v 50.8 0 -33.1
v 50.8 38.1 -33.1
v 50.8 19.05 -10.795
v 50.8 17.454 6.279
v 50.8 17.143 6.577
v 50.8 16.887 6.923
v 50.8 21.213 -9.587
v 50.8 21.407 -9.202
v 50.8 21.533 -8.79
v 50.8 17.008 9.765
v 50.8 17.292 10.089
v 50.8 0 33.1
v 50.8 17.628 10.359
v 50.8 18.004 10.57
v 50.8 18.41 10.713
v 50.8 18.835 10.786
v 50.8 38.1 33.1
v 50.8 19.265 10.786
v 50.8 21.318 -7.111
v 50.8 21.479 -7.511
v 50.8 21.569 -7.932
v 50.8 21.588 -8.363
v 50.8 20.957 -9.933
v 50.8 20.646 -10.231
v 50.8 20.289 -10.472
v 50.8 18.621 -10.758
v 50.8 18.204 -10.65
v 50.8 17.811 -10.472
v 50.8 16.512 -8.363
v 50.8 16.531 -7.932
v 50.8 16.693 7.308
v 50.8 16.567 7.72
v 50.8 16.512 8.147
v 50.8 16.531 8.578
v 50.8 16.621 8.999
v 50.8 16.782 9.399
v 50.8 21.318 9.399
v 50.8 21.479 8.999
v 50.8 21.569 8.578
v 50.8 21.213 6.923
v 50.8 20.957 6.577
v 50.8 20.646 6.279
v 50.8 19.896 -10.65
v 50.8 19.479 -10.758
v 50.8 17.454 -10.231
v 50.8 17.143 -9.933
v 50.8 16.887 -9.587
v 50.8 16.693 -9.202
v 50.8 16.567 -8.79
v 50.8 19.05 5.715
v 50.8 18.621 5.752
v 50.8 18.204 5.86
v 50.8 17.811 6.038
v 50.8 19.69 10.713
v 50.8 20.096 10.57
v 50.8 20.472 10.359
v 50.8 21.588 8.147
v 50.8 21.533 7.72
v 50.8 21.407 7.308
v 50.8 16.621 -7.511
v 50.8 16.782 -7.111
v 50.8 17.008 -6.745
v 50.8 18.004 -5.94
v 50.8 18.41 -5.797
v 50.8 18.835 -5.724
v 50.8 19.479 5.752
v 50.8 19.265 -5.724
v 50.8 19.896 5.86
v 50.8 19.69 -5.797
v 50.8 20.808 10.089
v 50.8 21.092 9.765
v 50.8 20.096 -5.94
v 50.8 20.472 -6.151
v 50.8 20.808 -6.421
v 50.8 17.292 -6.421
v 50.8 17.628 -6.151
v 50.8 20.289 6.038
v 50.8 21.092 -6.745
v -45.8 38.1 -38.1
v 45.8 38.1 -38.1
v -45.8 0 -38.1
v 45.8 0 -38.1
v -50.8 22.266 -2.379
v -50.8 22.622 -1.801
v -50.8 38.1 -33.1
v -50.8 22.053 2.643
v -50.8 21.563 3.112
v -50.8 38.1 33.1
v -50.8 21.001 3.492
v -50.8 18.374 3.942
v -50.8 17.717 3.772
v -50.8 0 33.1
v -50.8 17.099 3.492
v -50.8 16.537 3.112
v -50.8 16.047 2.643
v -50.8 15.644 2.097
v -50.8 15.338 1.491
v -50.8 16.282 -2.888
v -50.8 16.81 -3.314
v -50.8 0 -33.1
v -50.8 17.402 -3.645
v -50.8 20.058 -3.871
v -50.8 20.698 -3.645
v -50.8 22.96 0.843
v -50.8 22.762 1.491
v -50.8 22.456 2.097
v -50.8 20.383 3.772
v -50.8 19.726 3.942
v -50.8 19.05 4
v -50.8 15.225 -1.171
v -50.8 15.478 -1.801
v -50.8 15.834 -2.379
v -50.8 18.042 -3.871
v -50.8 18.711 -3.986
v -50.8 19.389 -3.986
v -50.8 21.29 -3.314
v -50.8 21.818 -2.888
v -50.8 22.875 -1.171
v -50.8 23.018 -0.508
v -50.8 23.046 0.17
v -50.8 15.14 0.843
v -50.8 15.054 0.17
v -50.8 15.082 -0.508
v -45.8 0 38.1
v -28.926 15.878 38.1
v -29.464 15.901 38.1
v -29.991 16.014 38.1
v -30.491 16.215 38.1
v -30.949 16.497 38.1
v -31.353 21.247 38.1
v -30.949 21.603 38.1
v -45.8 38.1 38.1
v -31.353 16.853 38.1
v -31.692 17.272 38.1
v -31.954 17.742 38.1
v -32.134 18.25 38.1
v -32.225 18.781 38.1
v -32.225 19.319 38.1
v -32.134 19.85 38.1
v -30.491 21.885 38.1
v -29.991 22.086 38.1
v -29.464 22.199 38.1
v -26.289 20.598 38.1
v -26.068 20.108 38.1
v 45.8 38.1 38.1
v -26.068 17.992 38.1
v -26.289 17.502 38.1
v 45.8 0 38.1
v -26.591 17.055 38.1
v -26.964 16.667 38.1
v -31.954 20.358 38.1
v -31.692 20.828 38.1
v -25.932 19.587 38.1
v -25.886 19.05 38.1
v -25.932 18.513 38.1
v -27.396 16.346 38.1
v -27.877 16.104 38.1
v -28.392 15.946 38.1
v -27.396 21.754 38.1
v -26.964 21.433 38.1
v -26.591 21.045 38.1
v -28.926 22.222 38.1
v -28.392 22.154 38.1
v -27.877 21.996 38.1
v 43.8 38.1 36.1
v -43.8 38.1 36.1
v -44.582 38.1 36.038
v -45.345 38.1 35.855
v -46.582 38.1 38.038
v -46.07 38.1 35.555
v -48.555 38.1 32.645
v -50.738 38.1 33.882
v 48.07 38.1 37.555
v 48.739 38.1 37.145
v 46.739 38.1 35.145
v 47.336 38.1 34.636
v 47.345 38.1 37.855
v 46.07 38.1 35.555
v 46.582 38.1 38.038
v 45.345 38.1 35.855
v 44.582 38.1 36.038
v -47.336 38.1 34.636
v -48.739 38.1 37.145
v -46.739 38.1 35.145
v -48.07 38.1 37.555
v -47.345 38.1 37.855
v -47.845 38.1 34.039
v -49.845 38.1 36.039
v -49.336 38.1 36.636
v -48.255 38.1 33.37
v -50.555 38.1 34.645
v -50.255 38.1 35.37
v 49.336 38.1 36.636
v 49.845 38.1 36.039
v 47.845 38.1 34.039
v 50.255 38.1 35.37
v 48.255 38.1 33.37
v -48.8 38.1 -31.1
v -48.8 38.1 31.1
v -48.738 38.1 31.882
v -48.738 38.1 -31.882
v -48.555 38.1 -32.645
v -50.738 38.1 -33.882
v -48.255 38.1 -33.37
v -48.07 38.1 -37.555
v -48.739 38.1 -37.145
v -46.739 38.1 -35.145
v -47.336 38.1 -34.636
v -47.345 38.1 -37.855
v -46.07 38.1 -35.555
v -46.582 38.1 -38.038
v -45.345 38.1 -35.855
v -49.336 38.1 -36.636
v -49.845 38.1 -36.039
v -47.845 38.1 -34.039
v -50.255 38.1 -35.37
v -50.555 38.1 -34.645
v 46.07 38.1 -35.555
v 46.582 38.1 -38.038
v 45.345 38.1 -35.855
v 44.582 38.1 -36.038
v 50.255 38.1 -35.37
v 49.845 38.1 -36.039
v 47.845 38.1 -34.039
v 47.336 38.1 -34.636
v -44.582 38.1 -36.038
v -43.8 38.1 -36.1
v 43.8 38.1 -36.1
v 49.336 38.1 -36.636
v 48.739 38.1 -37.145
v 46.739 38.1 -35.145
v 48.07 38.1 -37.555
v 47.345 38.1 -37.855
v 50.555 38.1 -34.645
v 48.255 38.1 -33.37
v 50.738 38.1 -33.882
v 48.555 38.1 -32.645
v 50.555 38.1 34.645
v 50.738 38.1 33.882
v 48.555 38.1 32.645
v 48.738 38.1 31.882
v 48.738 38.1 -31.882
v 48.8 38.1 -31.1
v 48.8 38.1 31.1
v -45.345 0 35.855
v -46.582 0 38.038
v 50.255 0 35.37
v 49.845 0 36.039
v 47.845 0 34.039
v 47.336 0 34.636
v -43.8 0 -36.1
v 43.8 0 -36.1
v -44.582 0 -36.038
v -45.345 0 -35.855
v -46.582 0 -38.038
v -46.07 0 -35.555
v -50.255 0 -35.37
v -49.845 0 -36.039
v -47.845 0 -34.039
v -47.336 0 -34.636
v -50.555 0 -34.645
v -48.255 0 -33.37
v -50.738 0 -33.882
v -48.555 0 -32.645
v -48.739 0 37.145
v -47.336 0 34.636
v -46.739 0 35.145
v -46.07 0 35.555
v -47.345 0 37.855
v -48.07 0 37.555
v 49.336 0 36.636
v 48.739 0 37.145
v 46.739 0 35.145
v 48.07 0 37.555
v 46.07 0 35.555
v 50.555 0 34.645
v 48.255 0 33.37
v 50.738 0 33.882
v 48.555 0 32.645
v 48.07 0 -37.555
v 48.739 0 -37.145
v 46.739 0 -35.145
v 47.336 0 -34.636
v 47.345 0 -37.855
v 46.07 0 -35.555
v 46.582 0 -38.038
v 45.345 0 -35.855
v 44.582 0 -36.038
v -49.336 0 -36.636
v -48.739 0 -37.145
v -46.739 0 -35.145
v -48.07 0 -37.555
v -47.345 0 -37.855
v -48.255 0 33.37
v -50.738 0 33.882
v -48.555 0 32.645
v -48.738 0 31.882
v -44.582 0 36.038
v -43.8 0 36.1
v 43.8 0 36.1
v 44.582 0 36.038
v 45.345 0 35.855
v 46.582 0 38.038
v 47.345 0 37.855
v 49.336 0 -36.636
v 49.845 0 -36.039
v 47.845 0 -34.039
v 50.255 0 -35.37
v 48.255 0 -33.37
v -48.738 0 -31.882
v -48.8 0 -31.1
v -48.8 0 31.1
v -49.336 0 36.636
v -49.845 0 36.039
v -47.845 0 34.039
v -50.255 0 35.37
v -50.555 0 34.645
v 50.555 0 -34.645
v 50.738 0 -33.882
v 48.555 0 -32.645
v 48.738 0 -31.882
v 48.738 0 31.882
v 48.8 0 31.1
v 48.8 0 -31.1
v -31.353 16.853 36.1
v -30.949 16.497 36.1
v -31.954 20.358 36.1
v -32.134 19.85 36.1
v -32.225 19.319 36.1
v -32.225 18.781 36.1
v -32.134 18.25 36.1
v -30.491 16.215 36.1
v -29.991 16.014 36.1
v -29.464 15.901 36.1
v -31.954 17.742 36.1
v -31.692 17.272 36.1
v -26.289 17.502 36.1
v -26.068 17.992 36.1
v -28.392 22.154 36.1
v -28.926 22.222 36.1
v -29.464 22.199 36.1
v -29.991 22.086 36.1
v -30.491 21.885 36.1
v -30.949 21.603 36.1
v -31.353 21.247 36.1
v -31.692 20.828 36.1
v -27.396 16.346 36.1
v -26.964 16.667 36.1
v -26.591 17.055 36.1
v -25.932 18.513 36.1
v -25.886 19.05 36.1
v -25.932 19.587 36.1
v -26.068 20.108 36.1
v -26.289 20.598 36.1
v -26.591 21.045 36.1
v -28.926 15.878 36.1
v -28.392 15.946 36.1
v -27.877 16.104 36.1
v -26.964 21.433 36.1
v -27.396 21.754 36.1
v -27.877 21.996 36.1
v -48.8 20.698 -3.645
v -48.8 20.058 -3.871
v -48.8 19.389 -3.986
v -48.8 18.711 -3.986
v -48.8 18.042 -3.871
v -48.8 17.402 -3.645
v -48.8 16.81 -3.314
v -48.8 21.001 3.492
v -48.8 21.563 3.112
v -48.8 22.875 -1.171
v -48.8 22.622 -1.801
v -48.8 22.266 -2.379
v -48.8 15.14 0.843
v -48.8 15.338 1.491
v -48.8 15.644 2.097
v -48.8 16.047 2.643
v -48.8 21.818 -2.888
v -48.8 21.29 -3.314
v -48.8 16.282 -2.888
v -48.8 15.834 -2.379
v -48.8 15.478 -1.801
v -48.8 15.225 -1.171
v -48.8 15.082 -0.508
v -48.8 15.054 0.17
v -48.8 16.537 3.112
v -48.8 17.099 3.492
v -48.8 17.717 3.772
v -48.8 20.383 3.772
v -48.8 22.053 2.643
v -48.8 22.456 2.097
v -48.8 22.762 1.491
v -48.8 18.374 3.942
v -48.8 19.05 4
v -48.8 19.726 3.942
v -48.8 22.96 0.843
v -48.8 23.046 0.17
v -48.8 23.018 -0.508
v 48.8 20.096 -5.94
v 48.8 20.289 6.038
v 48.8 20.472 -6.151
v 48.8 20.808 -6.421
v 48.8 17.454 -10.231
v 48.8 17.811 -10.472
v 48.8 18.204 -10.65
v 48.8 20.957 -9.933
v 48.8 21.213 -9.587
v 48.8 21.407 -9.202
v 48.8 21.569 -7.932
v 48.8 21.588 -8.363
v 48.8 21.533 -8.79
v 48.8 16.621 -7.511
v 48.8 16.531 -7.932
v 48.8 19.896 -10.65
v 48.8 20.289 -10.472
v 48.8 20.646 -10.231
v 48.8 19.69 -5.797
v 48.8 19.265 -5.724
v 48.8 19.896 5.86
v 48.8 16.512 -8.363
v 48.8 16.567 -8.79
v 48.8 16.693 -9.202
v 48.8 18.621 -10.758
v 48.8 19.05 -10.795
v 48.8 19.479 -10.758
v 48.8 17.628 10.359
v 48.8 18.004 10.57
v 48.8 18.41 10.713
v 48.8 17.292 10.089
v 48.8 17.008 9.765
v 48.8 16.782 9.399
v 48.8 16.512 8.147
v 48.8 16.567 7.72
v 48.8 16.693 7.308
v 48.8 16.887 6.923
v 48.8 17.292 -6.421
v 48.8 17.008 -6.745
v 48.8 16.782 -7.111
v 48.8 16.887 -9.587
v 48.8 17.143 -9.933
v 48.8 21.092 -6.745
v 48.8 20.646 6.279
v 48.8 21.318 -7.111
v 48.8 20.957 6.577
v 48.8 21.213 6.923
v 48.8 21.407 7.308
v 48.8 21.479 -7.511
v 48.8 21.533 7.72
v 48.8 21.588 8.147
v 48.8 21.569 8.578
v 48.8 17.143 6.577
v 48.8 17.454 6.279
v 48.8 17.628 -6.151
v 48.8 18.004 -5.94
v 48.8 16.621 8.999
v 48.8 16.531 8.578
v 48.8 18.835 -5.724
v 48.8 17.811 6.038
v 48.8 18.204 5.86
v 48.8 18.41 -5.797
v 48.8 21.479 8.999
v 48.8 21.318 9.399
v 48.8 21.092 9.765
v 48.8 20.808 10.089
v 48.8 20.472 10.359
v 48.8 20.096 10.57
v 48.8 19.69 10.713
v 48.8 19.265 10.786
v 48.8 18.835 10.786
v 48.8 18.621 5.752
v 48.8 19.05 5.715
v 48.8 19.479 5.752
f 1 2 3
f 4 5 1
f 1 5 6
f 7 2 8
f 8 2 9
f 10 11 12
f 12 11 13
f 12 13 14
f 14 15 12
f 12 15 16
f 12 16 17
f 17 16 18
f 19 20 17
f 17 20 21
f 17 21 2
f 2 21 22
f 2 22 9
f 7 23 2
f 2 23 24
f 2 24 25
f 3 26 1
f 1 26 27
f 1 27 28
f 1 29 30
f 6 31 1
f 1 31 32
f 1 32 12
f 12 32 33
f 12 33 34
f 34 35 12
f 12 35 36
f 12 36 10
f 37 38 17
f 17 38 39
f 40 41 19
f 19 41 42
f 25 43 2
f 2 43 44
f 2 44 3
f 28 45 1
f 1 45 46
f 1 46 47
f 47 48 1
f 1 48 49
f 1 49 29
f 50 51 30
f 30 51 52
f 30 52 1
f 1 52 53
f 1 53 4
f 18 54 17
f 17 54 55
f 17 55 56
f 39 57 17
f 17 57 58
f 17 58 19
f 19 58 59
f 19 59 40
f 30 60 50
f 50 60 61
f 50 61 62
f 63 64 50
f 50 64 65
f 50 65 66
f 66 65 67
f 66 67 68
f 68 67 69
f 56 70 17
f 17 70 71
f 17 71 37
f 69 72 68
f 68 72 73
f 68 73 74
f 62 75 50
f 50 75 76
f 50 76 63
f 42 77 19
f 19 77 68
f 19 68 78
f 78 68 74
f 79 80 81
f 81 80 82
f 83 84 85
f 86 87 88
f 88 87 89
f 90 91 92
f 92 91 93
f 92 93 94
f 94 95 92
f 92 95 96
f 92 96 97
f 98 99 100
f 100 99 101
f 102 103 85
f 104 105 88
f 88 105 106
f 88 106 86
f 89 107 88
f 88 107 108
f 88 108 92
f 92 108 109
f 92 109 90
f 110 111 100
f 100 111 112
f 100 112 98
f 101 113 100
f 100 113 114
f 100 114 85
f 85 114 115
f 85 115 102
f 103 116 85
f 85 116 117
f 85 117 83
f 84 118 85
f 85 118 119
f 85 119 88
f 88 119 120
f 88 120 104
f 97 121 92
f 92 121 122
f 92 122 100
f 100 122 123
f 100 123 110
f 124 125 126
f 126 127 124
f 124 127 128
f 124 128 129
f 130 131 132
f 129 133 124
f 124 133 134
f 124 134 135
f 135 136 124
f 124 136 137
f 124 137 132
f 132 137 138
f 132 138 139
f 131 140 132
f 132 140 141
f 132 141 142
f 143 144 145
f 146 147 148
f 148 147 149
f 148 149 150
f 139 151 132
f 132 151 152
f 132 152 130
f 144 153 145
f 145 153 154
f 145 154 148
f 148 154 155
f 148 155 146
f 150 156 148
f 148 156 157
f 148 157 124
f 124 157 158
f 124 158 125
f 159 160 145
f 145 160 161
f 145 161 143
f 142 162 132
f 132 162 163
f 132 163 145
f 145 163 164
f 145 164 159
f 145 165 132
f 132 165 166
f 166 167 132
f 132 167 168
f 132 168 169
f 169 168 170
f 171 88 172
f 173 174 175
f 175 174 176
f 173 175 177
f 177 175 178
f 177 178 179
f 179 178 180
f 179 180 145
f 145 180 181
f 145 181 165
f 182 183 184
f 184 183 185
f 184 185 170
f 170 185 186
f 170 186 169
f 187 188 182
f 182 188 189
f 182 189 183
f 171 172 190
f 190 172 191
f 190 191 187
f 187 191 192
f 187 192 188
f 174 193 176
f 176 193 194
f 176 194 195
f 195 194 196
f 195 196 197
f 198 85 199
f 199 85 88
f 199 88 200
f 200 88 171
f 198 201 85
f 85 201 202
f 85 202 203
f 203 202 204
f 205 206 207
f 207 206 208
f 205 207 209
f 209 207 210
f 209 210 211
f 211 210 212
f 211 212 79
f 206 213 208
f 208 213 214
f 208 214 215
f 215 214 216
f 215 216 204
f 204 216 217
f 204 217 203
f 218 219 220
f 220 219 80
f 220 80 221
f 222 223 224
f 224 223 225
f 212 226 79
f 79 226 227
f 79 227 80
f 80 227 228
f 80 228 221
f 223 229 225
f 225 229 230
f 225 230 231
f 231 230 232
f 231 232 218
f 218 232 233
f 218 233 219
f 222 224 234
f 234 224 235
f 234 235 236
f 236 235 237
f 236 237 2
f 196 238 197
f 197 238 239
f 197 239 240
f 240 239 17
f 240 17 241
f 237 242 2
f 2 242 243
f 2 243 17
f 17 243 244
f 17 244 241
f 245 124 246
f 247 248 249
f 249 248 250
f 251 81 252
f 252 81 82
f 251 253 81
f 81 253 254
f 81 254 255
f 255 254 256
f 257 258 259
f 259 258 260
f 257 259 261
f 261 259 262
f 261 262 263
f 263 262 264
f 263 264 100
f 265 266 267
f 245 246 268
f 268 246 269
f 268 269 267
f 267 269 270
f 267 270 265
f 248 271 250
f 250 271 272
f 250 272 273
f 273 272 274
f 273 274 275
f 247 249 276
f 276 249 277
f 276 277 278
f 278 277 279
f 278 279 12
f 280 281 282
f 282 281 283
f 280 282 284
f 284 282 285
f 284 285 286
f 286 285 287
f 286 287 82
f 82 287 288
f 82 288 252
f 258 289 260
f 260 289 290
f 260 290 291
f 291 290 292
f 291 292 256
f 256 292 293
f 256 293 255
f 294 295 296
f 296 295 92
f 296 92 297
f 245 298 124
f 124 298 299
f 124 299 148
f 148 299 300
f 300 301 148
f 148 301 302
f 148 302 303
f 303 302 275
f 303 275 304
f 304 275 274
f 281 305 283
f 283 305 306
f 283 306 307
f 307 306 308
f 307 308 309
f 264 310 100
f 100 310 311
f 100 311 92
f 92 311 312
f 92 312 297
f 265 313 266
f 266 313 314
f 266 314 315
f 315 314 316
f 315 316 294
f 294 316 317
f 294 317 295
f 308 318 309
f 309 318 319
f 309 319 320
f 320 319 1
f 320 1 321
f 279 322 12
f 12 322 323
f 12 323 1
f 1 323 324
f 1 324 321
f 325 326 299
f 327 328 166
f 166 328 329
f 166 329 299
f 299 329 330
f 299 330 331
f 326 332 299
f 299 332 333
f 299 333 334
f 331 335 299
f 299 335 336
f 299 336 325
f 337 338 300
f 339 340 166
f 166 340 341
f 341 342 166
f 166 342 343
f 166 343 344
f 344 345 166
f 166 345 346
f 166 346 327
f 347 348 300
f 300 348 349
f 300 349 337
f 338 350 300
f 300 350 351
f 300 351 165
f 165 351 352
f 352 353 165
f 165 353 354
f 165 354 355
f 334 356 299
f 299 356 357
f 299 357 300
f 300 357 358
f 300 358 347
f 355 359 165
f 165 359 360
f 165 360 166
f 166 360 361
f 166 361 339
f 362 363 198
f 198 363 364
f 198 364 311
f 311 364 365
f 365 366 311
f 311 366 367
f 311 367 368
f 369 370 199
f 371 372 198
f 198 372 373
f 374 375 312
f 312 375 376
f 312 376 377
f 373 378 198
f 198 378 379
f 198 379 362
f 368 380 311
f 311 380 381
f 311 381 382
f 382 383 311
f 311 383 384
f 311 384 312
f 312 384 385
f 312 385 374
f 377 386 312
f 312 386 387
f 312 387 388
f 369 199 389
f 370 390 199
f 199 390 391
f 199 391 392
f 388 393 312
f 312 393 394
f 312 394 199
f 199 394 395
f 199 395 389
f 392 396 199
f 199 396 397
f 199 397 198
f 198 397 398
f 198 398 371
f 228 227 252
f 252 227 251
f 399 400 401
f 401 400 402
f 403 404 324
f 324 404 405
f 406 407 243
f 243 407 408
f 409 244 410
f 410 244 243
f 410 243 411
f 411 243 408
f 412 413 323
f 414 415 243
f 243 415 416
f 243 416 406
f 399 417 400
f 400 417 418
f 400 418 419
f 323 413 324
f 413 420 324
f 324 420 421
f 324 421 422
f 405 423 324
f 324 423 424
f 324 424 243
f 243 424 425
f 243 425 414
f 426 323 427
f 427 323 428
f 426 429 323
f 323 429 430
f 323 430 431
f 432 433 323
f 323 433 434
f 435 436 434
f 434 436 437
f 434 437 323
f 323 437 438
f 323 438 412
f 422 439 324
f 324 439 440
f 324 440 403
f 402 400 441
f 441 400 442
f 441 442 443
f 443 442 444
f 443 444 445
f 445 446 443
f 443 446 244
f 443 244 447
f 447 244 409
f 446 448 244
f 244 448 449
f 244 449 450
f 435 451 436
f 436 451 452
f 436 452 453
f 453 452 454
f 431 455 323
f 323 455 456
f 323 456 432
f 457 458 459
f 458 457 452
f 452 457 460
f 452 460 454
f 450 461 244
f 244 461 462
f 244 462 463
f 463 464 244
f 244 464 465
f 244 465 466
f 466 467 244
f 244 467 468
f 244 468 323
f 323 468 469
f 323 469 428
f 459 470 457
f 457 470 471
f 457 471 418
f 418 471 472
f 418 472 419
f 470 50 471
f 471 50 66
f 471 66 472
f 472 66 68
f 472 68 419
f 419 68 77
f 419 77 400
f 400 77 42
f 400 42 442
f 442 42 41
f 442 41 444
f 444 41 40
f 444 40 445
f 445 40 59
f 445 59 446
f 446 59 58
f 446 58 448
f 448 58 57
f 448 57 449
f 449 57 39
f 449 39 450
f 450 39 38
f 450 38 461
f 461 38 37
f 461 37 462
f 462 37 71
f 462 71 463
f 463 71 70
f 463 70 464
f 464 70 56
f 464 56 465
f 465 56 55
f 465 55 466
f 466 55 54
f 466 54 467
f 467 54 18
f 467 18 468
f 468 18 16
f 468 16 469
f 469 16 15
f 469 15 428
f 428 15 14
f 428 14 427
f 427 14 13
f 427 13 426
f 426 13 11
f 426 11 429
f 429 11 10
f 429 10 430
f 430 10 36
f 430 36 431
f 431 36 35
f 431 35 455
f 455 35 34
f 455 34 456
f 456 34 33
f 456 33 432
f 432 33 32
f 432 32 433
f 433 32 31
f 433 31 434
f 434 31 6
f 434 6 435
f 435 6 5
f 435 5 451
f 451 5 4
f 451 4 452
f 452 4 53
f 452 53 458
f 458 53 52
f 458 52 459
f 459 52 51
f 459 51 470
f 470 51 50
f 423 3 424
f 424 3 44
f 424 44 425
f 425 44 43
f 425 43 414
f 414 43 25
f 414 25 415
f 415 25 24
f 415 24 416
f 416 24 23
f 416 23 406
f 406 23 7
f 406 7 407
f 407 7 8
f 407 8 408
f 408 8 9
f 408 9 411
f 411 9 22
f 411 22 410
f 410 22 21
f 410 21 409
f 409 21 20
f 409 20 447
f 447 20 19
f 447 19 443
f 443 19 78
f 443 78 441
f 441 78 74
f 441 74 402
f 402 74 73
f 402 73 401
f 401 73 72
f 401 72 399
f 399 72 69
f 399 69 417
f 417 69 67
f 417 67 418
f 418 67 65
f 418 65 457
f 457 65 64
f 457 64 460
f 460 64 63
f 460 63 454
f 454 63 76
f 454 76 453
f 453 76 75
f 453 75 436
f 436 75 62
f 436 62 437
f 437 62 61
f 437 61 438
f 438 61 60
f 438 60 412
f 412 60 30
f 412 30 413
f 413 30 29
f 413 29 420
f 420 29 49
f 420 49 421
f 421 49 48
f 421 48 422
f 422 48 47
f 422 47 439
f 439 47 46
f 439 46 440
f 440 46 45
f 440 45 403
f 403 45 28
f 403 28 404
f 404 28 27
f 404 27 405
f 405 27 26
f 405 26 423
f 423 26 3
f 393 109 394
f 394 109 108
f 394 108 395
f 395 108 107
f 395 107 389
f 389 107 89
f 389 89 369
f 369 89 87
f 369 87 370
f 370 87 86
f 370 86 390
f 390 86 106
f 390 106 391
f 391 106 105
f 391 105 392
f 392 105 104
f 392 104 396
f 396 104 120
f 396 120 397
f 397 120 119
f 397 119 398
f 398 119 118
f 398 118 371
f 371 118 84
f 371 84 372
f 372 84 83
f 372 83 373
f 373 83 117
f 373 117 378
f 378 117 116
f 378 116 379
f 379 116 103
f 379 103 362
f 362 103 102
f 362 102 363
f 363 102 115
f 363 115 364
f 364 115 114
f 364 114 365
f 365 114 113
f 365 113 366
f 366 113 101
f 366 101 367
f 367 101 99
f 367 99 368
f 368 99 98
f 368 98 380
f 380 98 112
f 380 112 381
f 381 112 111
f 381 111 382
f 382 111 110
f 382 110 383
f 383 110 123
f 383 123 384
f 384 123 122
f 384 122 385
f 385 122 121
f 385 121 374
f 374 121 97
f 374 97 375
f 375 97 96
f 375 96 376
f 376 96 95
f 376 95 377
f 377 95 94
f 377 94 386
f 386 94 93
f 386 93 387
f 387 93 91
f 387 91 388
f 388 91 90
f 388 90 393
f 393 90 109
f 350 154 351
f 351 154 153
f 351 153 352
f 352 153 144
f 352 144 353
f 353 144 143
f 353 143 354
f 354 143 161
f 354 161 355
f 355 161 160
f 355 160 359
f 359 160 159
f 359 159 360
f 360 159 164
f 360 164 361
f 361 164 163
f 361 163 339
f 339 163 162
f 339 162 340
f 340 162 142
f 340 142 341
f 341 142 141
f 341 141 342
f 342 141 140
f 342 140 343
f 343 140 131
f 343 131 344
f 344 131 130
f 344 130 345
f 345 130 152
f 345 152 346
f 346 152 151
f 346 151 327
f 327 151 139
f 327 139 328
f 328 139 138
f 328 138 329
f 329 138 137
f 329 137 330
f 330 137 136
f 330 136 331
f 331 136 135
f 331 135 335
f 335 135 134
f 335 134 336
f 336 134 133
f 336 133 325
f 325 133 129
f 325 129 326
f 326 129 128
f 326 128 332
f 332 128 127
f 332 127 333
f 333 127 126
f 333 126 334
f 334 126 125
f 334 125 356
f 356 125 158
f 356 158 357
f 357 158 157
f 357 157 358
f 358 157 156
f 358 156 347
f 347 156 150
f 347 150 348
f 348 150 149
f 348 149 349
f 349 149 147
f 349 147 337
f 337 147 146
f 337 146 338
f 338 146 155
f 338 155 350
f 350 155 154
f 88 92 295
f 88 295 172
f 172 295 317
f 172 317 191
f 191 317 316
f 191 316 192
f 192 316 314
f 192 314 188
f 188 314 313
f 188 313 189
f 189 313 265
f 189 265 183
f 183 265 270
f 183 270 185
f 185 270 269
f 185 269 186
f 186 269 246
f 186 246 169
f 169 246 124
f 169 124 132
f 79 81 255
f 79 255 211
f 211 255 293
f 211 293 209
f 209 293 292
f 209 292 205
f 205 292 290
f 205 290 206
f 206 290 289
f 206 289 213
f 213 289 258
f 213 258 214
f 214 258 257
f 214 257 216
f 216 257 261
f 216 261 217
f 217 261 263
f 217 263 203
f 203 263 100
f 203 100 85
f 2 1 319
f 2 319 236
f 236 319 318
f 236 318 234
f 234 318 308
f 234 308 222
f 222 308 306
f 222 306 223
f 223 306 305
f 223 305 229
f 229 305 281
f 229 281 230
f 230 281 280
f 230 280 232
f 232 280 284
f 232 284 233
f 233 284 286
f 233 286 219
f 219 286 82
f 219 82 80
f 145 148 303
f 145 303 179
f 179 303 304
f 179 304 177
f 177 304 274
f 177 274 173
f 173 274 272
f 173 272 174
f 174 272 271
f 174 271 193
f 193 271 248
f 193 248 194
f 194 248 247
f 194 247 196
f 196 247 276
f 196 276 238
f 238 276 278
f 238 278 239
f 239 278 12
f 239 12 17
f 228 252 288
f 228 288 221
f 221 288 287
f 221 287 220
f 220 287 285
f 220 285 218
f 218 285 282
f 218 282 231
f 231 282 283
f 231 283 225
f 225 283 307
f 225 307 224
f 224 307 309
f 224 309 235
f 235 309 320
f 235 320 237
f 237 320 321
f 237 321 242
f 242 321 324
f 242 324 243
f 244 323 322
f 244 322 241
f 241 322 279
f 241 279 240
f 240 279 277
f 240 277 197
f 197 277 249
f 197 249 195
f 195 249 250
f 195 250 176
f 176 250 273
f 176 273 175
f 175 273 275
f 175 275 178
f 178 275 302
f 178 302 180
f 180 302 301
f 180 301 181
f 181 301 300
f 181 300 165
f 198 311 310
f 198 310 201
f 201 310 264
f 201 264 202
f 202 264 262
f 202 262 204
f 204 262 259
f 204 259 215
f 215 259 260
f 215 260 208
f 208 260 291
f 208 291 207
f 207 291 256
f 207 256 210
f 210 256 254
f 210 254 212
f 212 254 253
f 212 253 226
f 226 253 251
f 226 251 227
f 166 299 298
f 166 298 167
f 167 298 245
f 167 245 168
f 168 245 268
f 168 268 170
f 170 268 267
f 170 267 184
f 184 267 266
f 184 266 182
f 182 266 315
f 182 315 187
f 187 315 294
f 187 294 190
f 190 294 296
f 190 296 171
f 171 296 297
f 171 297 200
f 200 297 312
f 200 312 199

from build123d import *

# Parameters (mm, degrees)
SKETCH1_W           = 101.6
SKETCH1_H           = 76.2
BOSS_EXTRUDE1_DEPTH = 38.1
SKETCH3_W           = 97.6
SKETCH3_H           = 72.2
CUT_EXTRUDE1_DEPTH  = 75.053089065
SKETCH7_R           = 2.54
CUT_EXTRUDE2_DEPTH  = 2
SKETCH9_R           = 4
CUT_EXTRUDE3_DEPTH  = 2
SKETCH11_R          = 3.175
CUT_EXTRUDE4_DEPTH  = 2
FILLET1_R           = 5
FILLET2_R           = 5


with BuildPart() as part:
    # Sketch1 → Boss-Extrude1 (new body)
    with BuildSketch(Plane(origin=(0, 0, 0), x_dir=(1, 0, 0), z_dir=(0, 1, 0))):
        Rectangle(SKETCH1_W, SKETCH1_H)
    extrude(amount=BOSS_EXTRUDE1_DEPTH)

    # Sketch3 → Cut-Extrude1 (cut, through all)
    with BuildSketch(Plane(origin=(0, 38.1, 0), x_dir=(1, 0, 0), z_dir=(0, 1, 0))):
        Rectangle(SKETCH3_W, SKETCH3_H)
    extrude(amount=-CUT_EXTRUDE1_DEPTH, mode=Mode.SUBTRACT)

    # Sketch7 → Cut-Extrude2 (cut)
    with BuildSketch(Plane(origin=(50.8, 0, 0), x_dir=(0, 0, -1), z_dir=(1, 0, 0))):
        with Locations((-8.255, 19.05)):
            Circle(SKETCH7_R)
        with Locations((8.255, 19.05)):
            Circle(SKETCH7_R)
    extrude(amount=-CUT_EXTRUDE2_DEPTH, mode=Mode.SUBTRACT)

    # Sketch9 → Cut-Extrude3 (cut)
    with BuildSketch(Plane.ZY.offset(50.8)):
        with Locations((0, 19.05)):
            Circle(SKETCH9_R)
    extrude(amount=-CUT_EXTRUDE3_DEPTH, mode=Mode.SUBTRACT)

    # Sketch11 → Cut-Extrude4 (cut)
    with BuildSketch(Plane.XY.offset(38.1)):
        with Locations((-29.061160139, 19.05)):
            Circle(SKETCH11_R)
    extrude(amount=-CUT_EXTRUDE4_DEPTH, mode=Mode.SUBTRACT)

    # Fillet1
    fillet1_edges = [part.edges().sort_by_distance(p)[0] for p in [
        (50.8, 19.05, 38.1),
        (-50.8, 19.05, 38.1),
        (-50.8, 19.05, -38.1),
        (50.8, 19.05, -38.1),
    ]]
    fillet(fillet1_edges, radius=FILLET1_R)

    # Fillet2
    fillet2_edges = [part.edges().sort_by_distance(p)[0] for p in [
        (48.8, 19.05, 36.1),
        (-48.8, 19.05, 36.1),
        (-48.8, 19.05, -36.1),
        (48.8, 19.05, -36.1),
    ]]
    fillet(fillet2_edges, radius=FILLET2_R)


solid = part.part
